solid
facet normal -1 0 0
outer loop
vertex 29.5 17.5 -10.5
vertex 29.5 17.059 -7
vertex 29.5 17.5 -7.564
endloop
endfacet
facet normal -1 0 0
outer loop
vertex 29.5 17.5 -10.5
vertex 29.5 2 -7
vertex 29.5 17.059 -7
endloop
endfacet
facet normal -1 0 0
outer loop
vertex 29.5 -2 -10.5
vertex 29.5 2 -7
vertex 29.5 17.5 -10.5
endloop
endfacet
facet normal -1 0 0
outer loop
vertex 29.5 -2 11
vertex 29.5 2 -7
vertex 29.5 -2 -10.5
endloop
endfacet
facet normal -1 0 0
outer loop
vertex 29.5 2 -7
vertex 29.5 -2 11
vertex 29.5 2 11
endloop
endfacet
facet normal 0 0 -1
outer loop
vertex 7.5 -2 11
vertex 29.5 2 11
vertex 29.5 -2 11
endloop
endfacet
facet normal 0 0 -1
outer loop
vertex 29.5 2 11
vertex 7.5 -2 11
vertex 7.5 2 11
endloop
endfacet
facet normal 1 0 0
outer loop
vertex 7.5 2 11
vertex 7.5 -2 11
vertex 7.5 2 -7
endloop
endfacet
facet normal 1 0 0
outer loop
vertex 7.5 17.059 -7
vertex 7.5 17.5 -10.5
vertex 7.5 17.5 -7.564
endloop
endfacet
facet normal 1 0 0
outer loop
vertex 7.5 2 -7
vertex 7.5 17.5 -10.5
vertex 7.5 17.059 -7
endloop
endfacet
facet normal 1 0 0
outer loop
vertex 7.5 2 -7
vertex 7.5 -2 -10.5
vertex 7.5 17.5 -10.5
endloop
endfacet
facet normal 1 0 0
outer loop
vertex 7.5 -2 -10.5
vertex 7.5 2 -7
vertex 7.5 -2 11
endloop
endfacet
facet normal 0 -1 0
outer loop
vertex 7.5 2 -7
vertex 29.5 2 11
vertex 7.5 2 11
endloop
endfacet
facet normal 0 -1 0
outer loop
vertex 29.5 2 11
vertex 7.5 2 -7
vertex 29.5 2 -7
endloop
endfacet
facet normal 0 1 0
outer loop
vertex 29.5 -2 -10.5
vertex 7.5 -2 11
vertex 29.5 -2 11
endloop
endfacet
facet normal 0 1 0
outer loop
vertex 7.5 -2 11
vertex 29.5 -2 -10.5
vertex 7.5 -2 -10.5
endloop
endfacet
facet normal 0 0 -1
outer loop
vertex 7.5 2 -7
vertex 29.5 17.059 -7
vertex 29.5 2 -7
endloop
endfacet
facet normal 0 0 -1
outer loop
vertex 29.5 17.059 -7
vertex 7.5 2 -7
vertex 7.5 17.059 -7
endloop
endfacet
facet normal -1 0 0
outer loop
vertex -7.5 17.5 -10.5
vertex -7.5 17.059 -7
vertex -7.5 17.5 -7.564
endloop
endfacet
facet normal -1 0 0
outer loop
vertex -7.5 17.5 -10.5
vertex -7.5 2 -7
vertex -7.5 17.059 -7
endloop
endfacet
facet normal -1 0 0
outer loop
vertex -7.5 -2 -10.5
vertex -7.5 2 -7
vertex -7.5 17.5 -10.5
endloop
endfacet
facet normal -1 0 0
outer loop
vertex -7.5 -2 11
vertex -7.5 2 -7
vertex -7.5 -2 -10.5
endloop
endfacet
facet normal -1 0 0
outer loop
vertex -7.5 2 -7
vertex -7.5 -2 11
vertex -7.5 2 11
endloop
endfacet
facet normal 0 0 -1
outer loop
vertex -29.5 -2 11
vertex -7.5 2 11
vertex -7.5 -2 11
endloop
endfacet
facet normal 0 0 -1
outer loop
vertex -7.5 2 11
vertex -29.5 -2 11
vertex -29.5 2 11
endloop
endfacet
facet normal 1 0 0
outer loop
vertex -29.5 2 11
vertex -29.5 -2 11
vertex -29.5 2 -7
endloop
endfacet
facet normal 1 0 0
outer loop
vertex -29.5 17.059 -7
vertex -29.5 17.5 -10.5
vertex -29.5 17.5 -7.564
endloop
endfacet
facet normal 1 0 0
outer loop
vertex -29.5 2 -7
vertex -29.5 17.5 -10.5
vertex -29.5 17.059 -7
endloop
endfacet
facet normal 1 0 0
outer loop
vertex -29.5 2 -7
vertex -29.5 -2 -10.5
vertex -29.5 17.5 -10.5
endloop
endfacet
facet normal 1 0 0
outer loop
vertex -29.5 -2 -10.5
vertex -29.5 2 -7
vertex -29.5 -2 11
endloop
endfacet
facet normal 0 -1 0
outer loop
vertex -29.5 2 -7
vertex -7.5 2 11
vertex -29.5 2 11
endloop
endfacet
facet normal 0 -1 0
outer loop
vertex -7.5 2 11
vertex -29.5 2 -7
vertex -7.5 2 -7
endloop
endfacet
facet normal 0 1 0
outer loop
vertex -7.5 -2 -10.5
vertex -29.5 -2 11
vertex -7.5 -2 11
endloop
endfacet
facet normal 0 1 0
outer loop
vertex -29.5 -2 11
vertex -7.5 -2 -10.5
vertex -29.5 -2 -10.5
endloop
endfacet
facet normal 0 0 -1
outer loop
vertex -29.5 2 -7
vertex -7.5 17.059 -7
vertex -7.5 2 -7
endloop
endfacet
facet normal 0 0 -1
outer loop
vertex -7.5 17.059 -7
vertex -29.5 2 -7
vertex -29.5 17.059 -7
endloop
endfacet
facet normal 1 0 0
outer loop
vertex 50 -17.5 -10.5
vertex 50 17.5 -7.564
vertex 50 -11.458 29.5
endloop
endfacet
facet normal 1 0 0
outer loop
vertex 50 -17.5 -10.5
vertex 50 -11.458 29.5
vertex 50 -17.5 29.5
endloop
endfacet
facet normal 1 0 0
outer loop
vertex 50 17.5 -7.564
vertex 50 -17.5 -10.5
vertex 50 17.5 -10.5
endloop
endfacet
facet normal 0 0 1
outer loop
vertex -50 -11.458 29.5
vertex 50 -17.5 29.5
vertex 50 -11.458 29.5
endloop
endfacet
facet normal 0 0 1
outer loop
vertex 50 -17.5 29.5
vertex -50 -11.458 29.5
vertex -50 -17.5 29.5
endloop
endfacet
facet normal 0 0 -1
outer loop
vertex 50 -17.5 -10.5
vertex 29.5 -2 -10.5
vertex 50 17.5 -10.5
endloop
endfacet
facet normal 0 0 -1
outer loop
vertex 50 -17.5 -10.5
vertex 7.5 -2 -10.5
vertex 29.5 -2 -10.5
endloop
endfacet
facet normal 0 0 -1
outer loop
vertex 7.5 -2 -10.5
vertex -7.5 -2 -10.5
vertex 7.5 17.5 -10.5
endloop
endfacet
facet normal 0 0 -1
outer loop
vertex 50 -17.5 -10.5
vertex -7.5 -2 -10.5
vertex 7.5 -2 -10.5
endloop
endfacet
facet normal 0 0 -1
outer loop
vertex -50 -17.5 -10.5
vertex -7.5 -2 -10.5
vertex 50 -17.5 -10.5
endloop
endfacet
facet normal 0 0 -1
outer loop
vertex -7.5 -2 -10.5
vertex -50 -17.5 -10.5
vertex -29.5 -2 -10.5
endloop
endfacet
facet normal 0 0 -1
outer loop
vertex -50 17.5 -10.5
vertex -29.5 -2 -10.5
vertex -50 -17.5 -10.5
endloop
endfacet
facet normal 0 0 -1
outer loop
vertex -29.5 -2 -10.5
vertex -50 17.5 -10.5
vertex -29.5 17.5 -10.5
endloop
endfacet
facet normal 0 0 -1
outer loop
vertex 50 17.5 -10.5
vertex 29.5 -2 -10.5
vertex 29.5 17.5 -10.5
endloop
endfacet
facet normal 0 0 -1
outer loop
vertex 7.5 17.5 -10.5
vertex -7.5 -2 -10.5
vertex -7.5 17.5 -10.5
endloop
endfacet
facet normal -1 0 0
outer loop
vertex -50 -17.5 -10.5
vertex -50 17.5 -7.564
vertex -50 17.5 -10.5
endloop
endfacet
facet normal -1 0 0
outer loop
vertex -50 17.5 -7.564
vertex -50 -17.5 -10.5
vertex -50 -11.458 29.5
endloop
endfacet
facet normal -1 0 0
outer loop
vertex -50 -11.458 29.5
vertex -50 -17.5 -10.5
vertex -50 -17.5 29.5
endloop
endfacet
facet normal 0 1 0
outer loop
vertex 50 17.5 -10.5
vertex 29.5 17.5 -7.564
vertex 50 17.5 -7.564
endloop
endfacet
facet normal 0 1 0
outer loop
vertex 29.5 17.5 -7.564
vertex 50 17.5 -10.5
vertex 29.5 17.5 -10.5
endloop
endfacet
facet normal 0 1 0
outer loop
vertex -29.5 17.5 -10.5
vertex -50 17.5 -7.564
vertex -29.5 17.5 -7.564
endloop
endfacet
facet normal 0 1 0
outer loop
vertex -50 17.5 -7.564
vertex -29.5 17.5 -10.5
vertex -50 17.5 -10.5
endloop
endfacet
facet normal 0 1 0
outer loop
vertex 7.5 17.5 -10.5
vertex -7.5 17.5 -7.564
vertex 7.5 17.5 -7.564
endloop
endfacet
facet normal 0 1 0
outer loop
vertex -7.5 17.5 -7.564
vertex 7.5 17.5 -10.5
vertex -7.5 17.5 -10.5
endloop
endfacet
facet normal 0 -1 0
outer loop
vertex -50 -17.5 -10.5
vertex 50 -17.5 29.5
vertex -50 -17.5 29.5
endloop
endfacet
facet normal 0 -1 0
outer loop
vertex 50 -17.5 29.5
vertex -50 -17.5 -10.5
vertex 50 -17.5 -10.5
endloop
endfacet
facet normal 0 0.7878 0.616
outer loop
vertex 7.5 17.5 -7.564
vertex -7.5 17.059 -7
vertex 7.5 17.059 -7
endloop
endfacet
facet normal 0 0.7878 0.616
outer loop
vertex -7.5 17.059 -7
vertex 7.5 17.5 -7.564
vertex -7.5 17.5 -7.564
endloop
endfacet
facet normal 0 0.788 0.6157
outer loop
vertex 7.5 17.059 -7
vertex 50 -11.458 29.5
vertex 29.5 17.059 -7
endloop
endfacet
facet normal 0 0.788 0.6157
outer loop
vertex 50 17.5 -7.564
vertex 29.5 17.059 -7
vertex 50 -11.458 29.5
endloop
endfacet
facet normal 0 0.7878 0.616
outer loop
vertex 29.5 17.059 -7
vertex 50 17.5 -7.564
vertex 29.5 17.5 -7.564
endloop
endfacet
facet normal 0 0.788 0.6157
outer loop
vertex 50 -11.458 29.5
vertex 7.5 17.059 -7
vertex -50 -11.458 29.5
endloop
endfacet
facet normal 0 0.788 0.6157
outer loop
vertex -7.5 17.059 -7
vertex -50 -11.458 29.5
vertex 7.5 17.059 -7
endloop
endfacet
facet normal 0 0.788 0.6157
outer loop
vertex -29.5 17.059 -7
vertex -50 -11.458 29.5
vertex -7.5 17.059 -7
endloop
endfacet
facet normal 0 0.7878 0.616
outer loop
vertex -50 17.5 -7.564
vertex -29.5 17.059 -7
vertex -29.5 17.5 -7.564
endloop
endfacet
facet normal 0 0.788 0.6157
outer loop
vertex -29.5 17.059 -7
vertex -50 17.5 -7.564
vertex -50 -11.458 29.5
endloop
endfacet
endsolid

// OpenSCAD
$fn = 100;




module cutaway() {
translate([18.5, 0, 0]) {
cube([22, 4, 22], true);
translate([0,9,-9]) cube([22, 22, 4], true);
}

translate([-18.5, 0, 0]) {
cube([22, 4, 22], true);
translate([0,9,-9]) cube([22, 22, 4], true);
}
}


difference() {
translate([0, 0, 9.5]) cube([100,35,40], true);
translate([0,15,20]) rotate([38,0,0]) cube([105,30,60], true);
cutaway();
}
